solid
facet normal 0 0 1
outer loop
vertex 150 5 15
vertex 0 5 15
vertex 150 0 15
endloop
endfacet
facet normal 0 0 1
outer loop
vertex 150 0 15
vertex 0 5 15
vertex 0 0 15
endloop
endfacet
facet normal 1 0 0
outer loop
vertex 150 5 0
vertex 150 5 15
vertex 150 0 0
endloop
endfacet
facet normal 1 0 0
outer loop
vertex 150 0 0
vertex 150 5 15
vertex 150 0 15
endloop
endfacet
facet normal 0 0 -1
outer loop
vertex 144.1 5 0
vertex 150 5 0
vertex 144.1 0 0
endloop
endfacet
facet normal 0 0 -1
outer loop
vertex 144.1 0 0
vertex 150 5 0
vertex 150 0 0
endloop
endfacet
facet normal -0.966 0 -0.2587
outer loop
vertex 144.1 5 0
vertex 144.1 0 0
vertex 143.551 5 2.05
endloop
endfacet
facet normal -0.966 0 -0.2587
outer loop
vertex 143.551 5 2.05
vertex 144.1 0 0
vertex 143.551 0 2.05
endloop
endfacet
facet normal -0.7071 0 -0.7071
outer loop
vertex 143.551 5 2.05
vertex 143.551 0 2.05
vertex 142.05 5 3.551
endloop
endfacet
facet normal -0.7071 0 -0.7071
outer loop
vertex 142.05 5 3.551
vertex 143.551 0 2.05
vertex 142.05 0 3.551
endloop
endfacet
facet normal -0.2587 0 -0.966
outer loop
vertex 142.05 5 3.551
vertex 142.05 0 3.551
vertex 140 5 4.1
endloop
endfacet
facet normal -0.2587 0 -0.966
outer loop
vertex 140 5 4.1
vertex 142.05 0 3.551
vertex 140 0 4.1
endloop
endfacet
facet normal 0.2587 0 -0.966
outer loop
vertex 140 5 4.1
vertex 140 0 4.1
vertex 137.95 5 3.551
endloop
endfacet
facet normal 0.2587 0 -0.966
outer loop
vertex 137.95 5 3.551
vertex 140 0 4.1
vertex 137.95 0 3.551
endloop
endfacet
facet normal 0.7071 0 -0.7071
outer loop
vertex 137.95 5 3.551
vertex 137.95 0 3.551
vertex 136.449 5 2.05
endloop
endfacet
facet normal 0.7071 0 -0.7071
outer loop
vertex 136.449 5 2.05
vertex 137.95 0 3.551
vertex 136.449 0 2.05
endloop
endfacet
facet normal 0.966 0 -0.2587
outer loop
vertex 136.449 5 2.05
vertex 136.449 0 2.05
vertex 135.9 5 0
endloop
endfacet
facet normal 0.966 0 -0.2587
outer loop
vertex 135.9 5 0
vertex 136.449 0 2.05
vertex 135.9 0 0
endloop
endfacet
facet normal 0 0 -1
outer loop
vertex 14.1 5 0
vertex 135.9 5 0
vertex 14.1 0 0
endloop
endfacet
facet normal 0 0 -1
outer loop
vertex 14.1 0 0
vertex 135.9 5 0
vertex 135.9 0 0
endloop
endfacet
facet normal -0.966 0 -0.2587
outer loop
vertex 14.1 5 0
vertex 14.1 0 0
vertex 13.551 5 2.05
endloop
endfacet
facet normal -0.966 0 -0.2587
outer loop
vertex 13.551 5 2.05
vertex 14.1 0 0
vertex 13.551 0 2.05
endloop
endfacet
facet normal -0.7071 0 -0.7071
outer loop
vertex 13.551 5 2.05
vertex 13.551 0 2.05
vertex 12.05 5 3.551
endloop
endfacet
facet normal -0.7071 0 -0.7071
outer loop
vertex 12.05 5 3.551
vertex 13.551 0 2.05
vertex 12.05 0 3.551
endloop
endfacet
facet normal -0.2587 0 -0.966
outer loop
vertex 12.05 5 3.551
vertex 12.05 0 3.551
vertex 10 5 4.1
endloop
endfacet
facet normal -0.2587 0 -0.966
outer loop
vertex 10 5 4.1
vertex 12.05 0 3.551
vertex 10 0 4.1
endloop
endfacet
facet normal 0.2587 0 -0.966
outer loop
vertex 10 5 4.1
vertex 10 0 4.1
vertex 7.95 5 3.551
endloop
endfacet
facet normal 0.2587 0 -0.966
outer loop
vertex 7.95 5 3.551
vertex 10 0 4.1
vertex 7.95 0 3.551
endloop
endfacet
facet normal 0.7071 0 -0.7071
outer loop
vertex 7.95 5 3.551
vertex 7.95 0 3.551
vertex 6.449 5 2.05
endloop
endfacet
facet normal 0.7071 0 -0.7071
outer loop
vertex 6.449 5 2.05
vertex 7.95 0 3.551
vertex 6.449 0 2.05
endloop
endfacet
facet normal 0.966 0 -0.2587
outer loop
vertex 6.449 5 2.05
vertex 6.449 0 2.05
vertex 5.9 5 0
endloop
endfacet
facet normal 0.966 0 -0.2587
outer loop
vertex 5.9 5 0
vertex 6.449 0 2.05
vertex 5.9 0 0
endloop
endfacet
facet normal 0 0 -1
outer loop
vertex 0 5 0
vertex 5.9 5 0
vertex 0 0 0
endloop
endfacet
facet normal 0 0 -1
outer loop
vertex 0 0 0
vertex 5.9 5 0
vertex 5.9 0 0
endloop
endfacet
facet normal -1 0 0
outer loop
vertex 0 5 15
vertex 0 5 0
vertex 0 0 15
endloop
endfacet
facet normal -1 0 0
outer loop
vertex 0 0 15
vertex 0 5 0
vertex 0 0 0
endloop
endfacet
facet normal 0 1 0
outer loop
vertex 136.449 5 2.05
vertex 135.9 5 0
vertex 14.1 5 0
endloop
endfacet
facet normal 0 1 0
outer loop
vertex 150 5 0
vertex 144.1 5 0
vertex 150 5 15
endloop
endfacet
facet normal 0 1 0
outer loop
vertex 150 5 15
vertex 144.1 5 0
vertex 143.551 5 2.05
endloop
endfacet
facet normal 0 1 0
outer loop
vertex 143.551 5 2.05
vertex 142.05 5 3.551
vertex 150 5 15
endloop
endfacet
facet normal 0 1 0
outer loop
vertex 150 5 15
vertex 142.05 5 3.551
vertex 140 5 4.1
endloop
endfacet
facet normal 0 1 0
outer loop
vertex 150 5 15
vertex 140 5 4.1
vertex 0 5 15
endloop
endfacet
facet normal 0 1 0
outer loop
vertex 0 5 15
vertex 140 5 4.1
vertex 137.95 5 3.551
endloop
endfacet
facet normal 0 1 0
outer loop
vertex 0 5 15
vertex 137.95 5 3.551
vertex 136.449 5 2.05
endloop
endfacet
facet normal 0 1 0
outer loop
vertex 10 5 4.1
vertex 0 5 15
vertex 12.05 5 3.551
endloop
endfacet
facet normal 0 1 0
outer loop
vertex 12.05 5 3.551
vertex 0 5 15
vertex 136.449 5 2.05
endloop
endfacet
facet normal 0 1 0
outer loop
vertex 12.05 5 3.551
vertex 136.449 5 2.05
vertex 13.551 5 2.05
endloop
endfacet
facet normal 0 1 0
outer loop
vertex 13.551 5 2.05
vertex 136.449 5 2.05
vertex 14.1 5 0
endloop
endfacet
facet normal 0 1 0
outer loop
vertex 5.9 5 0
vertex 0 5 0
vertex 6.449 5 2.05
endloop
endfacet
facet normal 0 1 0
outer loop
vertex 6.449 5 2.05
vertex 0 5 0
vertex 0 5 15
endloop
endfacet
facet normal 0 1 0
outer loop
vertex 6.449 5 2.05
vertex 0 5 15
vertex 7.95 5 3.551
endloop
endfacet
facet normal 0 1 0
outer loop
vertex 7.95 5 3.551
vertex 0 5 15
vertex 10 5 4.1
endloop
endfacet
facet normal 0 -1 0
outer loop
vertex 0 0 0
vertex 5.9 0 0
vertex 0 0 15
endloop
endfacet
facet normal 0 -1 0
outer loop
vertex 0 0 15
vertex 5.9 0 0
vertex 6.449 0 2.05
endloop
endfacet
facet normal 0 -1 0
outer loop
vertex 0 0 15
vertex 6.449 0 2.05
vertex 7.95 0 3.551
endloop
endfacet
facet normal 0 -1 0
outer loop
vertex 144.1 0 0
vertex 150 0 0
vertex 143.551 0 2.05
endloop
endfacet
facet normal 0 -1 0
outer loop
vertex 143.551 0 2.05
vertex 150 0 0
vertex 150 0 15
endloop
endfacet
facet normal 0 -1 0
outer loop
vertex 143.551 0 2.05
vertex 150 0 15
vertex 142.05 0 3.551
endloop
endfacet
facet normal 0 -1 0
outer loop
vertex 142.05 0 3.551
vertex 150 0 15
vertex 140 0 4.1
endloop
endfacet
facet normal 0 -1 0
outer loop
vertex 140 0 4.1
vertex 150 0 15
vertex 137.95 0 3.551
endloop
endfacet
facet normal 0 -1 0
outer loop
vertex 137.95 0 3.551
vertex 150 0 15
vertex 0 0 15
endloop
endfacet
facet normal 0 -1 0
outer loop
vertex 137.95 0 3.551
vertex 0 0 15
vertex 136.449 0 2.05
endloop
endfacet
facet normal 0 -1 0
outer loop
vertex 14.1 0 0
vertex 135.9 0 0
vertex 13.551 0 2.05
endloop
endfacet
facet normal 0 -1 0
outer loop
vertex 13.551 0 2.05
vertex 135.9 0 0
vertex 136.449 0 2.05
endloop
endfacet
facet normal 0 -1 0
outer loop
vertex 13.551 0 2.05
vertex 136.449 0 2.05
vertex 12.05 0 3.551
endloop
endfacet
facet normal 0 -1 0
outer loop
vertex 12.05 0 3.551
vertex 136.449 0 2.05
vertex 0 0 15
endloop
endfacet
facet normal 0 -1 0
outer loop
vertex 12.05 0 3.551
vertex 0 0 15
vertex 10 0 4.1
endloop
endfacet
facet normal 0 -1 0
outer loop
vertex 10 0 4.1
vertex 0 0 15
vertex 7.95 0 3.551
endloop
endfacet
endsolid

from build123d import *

# Parameters (mm, degrees)
BOSS_EXTRUDE1_DEPTH = 5


with BuildPart() as part:
    # Sketch1 → Boss-Extrude1 (new body)
    with BuildSketch(Plane(origin=(0, 0, 0), x_dir=(1, 0, 0), z_dir=(0, 1, 0))):
        with BuildLine():
            Line((75, -15), (75, 0))
            Line((75, 0), (14.1, 0))
            ThreePointArc((14.1, 0), (10, -4.1), (5.9, 0))
            Line((5.9, 0), (0, 0))
            Line((0, 0), (0, -15))
            Line((0, -15), (75, -15))
        make_face()
        with BuildLine():
            Line((135.9, 0), (75, 0))
            Line((75, 0), (75, -15))
            Line((75, -15), (150, -15))
            Line((150, -15), (150, 0))
            Line((150, 0), (144.1, 0))
            ThreePointArc((144.1, 0), (140, -4.1), (135.9, 0))
        make_face()
    extrude(amount=BOSS_EXTRUDE1_DEPTH)


solid = part.part
